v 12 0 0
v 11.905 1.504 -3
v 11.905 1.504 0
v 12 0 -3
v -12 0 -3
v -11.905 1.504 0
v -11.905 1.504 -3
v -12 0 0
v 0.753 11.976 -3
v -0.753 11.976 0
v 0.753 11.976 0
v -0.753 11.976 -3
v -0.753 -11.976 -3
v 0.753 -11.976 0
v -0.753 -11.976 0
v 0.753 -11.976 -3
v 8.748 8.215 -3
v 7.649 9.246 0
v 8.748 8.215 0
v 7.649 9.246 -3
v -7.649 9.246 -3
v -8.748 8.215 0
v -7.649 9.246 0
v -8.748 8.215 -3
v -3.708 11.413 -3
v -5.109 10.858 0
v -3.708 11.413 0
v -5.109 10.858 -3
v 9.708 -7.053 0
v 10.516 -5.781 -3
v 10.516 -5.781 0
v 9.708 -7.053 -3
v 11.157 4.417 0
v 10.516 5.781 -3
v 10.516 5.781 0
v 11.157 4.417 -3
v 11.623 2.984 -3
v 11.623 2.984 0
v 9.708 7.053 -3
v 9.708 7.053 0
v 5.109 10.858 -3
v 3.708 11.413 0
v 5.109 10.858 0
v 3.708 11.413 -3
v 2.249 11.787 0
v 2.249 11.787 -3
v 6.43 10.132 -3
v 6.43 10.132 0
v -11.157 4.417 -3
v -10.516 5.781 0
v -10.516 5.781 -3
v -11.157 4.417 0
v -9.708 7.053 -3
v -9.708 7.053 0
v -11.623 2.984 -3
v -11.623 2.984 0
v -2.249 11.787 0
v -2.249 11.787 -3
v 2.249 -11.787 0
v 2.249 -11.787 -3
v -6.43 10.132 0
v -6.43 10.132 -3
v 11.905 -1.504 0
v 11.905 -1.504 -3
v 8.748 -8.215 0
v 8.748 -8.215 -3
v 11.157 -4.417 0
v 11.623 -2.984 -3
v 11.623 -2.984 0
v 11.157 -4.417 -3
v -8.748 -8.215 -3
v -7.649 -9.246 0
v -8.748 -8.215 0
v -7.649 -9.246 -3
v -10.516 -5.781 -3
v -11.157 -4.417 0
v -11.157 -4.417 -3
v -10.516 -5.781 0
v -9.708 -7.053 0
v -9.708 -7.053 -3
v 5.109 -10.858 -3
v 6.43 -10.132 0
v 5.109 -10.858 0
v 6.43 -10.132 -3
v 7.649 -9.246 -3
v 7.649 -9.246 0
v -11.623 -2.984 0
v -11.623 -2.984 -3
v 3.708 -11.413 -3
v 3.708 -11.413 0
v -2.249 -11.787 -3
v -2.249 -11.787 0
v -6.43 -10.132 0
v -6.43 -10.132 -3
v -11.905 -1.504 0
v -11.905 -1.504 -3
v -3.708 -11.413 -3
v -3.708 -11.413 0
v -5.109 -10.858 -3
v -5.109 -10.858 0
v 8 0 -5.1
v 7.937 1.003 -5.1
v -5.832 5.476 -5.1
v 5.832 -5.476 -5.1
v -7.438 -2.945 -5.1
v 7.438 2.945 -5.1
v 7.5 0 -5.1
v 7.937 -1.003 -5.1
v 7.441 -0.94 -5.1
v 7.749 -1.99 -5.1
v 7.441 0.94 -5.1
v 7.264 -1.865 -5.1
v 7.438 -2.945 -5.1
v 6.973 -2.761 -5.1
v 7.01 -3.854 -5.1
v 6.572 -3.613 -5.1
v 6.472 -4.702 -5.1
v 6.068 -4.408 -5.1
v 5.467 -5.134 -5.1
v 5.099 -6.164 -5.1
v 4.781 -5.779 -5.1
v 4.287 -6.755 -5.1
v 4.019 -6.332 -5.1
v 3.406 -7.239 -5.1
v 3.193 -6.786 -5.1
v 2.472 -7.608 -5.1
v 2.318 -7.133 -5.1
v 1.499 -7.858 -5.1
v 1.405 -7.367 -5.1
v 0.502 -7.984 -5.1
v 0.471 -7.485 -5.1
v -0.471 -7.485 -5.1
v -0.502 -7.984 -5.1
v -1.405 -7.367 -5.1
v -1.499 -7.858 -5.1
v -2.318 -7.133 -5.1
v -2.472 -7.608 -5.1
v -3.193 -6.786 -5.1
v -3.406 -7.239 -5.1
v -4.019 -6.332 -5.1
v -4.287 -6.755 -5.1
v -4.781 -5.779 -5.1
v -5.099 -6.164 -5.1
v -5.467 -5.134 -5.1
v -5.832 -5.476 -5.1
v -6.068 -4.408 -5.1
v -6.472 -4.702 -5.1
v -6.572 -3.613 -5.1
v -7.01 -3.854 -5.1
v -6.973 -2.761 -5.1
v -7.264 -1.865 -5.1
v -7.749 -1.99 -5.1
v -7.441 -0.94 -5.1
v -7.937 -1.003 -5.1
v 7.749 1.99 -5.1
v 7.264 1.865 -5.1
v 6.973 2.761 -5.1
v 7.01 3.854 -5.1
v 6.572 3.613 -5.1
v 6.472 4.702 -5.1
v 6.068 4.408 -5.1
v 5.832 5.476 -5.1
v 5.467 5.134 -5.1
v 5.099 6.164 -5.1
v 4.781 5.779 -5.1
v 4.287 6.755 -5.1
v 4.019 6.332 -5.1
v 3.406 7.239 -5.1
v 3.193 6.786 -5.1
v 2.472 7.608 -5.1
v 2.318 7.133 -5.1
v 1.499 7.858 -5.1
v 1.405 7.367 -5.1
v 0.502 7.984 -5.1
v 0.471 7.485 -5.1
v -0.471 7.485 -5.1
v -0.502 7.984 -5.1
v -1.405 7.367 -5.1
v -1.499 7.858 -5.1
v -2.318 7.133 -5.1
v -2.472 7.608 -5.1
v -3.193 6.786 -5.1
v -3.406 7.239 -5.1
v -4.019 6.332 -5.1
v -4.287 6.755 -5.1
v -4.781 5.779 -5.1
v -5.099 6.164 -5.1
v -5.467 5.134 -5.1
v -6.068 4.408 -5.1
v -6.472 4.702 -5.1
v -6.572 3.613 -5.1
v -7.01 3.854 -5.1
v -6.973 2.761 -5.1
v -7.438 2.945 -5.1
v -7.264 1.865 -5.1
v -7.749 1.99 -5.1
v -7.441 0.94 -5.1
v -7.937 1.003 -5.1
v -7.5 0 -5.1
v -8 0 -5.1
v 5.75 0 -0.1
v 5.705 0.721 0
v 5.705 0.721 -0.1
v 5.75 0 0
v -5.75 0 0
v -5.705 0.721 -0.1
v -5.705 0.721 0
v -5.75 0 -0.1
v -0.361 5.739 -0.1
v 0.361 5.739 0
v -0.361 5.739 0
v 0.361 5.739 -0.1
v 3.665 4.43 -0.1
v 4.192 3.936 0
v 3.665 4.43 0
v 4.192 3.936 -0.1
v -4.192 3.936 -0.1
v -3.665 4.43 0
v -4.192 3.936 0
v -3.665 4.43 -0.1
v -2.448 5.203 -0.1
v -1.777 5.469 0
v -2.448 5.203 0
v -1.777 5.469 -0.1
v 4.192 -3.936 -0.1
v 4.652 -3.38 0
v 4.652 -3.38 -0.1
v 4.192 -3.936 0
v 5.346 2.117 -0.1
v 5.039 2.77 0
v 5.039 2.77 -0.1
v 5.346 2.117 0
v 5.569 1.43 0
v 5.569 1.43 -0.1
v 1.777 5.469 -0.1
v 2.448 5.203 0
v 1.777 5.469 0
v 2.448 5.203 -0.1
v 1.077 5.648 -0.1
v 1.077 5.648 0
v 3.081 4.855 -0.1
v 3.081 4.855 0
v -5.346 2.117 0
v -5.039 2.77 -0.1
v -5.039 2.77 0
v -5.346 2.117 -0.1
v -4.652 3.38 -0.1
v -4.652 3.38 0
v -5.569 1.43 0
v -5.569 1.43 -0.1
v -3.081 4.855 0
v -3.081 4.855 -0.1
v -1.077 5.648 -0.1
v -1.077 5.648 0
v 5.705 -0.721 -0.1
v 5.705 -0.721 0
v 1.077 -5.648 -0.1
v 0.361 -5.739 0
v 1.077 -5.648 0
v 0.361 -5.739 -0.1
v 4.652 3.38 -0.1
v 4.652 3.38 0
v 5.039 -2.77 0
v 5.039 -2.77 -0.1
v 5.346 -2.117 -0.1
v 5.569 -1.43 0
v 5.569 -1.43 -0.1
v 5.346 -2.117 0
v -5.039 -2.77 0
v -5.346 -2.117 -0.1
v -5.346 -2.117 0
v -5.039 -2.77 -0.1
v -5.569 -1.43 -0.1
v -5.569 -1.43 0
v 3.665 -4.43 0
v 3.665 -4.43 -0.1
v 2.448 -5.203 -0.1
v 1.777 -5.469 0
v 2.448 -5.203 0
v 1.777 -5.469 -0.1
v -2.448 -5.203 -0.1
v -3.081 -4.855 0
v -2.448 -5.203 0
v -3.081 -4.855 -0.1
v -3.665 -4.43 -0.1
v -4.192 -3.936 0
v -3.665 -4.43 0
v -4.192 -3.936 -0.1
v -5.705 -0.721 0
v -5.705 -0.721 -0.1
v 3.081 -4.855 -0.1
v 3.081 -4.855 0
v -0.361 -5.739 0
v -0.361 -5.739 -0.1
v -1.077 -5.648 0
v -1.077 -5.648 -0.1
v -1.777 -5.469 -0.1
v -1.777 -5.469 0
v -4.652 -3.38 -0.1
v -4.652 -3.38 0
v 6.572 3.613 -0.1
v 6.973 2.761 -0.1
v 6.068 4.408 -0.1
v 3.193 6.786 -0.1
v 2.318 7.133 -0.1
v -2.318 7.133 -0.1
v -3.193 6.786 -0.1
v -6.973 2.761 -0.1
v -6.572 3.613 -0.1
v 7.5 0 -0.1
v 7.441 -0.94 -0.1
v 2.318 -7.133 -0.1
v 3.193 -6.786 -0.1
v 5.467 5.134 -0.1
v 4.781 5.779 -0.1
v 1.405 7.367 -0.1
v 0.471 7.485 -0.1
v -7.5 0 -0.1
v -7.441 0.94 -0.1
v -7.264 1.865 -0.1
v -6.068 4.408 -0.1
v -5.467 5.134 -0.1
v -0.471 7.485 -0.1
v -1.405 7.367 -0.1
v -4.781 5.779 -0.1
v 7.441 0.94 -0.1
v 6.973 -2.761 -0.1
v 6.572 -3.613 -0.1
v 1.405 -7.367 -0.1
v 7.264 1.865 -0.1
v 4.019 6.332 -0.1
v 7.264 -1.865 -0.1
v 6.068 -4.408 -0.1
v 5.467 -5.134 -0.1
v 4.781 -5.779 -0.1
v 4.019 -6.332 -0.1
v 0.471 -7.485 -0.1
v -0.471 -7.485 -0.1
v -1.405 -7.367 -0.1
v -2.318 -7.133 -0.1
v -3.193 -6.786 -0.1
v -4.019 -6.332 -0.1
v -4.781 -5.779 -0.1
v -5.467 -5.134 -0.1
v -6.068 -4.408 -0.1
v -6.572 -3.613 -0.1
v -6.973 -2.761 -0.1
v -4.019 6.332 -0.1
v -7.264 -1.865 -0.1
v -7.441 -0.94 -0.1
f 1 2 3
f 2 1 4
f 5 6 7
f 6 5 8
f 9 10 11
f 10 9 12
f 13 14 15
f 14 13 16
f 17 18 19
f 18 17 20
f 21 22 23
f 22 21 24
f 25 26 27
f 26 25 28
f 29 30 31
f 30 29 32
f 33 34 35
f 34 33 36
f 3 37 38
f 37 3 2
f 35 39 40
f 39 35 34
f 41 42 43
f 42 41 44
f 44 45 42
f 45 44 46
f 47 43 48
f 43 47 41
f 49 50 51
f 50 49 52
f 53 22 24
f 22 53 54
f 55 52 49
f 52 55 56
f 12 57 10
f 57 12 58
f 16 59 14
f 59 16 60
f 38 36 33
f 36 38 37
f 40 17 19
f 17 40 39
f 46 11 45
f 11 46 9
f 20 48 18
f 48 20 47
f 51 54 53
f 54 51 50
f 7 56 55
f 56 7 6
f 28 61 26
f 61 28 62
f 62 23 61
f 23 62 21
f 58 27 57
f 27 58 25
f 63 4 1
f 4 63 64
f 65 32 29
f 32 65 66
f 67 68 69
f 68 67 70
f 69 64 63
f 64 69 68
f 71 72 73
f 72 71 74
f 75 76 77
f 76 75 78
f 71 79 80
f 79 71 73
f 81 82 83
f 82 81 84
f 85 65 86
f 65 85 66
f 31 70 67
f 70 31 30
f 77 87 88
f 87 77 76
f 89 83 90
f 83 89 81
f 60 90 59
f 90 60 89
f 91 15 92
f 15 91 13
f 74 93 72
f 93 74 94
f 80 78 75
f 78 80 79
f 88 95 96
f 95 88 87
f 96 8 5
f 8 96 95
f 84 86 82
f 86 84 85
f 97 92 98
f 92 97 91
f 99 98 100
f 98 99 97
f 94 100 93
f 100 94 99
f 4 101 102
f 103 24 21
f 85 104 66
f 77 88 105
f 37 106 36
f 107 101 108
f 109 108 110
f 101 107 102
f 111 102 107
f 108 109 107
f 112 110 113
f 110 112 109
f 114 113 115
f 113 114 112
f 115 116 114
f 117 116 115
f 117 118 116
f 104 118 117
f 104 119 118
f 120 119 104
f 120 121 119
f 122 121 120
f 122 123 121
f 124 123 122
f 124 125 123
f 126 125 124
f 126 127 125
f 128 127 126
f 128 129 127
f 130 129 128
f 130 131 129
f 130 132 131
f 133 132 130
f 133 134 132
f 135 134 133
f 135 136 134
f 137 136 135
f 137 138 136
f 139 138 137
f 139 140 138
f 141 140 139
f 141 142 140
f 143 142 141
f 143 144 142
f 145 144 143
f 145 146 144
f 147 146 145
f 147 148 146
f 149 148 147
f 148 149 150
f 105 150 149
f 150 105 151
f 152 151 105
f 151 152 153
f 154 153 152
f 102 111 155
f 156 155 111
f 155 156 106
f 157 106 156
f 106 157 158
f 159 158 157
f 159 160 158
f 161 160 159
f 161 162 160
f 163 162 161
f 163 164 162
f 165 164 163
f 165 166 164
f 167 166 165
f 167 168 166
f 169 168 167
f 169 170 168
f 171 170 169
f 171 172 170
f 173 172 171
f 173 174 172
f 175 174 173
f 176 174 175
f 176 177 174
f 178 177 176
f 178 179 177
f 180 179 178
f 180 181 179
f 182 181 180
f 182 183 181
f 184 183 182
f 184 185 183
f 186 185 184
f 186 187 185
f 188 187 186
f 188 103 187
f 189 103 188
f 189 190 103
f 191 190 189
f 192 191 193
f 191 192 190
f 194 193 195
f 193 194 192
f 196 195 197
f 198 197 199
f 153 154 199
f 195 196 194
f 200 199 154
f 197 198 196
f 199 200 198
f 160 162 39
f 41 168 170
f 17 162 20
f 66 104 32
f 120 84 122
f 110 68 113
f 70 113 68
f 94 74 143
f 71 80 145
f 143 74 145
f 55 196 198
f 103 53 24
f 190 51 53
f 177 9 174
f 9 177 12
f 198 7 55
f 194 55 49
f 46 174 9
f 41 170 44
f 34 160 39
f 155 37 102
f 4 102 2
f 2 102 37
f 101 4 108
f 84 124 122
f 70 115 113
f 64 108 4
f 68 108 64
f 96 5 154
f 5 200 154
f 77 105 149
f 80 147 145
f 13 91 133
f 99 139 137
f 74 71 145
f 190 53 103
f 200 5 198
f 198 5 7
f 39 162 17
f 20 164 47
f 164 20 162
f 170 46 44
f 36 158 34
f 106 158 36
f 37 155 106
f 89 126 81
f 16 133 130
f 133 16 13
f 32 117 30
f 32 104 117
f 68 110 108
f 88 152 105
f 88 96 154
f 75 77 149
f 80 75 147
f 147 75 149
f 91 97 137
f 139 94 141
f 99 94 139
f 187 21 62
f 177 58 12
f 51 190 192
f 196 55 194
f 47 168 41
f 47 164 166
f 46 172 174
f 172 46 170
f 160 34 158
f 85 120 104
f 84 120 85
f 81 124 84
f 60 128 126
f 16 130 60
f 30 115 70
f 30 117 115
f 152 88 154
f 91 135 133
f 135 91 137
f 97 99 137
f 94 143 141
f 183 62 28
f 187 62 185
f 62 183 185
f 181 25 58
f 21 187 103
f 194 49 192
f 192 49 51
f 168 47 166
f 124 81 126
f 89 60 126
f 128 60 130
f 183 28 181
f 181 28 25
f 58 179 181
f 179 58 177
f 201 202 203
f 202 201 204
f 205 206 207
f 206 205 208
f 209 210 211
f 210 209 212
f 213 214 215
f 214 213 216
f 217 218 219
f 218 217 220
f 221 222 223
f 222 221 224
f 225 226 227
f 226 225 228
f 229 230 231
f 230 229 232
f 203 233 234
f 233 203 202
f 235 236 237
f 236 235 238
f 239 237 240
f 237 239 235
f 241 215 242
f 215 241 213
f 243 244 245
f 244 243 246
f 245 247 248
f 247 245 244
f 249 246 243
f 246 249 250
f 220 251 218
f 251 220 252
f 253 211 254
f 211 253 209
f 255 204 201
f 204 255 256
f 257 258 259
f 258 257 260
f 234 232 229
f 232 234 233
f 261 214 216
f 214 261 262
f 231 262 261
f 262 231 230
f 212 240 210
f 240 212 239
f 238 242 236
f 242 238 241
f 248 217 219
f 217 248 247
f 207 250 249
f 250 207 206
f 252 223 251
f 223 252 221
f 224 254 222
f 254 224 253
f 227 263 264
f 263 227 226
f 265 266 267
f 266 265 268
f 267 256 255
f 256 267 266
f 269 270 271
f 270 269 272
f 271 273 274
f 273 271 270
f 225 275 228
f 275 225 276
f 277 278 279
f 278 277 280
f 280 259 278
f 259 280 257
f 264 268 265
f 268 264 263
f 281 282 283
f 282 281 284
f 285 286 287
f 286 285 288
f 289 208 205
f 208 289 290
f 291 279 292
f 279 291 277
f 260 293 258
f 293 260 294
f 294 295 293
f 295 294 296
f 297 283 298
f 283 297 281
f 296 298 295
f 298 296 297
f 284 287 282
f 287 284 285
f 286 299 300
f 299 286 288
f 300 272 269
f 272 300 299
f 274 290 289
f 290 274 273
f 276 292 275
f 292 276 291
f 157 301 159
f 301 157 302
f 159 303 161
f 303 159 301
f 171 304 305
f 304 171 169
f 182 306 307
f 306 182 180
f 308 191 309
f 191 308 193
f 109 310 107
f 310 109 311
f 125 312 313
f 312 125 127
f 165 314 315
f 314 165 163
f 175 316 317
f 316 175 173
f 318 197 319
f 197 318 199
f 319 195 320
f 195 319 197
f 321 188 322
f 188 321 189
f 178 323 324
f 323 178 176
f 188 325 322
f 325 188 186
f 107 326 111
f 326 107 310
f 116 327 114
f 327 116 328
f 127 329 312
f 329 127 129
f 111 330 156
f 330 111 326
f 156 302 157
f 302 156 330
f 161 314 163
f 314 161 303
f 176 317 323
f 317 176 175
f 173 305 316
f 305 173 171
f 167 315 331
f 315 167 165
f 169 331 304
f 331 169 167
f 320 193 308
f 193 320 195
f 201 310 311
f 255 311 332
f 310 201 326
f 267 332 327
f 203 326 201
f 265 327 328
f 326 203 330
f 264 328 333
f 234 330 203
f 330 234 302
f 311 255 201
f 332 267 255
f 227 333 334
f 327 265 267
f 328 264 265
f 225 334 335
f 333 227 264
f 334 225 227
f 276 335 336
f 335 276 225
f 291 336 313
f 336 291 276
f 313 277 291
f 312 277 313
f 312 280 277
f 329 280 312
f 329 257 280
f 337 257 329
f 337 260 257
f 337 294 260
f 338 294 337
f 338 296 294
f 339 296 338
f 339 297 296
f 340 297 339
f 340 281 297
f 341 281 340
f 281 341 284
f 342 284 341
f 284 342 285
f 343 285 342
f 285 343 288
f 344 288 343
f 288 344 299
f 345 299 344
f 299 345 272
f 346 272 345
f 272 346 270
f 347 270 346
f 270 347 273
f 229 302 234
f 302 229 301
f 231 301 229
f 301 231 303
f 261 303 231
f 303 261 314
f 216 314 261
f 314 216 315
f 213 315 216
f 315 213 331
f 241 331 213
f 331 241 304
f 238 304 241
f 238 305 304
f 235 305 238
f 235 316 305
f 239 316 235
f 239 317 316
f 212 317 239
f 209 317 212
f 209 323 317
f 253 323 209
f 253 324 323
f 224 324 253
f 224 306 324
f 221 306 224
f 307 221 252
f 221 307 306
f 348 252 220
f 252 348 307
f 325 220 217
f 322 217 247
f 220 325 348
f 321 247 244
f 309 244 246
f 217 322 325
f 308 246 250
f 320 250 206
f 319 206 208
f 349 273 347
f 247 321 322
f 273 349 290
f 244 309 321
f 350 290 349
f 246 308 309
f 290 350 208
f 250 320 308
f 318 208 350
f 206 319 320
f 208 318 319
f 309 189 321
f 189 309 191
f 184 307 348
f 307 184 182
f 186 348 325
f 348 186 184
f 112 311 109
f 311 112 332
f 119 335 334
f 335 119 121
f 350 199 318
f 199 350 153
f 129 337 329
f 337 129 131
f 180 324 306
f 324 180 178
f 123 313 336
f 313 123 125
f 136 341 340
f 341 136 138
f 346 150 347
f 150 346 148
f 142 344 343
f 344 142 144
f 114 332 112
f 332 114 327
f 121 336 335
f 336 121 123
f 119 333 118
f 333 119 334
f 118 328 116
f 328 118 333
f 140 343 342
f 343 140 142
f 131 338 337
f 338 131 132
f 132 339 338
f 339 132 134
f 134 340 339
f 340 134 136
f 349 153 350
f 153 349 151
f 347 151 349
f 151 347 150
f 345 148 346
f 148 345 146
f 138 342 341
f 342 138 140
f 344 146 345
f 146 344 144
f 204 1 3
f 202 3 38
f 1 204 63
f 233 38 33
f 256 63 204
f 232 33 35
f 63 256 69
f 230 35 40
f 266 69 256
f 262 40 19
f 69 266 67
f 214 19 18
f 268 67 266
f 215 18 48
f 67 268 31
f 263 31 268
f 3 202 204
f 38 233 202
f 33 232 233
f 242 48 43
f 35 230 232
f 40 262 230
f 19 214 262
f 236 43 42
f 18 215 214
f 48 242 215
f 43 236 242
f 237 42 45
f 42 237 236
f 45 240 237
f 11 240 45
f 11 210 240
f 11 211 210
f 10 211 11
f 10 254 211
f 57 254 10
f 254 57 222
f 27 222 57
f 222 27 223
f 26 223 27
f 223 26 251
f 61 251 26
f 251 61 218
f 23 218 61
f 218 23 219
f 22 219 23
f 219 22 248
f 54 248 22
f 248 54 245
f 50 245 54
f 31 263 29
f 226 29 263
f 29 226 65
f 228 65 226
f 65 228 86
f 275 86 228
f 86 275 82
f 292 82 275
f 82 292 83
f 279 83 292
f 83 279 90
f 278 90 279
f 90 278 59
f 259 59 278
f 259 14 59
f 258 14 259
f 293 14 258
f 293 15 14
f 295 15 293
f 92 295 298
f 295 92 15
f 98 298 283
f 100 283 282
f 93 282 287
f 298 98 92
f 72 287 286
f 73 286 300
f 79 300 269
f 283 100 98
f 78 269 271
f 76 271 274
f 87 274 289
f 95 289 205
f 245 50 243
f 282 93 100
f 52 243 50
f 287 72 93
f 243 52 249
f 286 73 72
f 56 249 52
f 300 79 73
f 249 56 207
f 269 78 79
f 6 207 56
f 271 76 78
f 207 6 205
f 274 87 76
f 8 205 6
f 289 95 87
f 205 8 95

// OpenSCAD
$fn = 50;


difference() {
	union() {
		translate(v = [0, 0, -3.0000000000]) {
			cylinder(h = 6, r = 12.0000000000);
		}
		translate(v = [0, 0, 3.0000000000]) {
			cylinder(h = 2.1000000000, r1 = 12.0000000000, r2 = 8.0000000000);
		}
		translate(v = [0, 0, -5.1000000000]) {
			cylinder(h = 2.1000000000, r1 = 8.0000000000, r2 = 12.0000000000);
		}
	}
	union() {
		translate(v = [0, 0, -50.0000000000]) {
			cylinder(h = 100, r = 5);
		}
		translate(v = [0, 0, 2.6000000000]) {
			translate(v = [0, 0, -2.5000000000]) {
				union() {
					difference() {
						cylinder(h = 5, r = 7.5000000000);
						cylinder(h = 5, r = 3.0000000000);
					}
					difference() {
						translate(v = [0, 0, -50]) {
							cylinder(h = 100, r = 5.7500000000);
						}
					}
				}
			}
		}
		translate(v = [0, 0, -2.6000000000]) {
			translate(v = [0, 0, -2.5000000000]) {
				union() {
					difference() {
						cylinder(h = 5, r = 7.5000000000);
						cylinder(h = 5, r = 3.0000000000);
					}
					difference() {
						translate(v = [0, 0, -50]) {
							cylinder(h = 100, r = 5.7500000000);
						}
					}
				}
			}
		}
		translate(v = [-250.0000000000, -250.0000000000, 0]) {
			cube(size = [500, 500, 500]);
		}
		translate(v = [-250.0000000000, -250.0000000000, 0]) {
			cube(size = [500, 500, 500]);
		}
		translate(v = [-250.0000000000, -250.0000000000, 0]) {
			cube(size = [500, 500, 500]);
		}
	}
}
